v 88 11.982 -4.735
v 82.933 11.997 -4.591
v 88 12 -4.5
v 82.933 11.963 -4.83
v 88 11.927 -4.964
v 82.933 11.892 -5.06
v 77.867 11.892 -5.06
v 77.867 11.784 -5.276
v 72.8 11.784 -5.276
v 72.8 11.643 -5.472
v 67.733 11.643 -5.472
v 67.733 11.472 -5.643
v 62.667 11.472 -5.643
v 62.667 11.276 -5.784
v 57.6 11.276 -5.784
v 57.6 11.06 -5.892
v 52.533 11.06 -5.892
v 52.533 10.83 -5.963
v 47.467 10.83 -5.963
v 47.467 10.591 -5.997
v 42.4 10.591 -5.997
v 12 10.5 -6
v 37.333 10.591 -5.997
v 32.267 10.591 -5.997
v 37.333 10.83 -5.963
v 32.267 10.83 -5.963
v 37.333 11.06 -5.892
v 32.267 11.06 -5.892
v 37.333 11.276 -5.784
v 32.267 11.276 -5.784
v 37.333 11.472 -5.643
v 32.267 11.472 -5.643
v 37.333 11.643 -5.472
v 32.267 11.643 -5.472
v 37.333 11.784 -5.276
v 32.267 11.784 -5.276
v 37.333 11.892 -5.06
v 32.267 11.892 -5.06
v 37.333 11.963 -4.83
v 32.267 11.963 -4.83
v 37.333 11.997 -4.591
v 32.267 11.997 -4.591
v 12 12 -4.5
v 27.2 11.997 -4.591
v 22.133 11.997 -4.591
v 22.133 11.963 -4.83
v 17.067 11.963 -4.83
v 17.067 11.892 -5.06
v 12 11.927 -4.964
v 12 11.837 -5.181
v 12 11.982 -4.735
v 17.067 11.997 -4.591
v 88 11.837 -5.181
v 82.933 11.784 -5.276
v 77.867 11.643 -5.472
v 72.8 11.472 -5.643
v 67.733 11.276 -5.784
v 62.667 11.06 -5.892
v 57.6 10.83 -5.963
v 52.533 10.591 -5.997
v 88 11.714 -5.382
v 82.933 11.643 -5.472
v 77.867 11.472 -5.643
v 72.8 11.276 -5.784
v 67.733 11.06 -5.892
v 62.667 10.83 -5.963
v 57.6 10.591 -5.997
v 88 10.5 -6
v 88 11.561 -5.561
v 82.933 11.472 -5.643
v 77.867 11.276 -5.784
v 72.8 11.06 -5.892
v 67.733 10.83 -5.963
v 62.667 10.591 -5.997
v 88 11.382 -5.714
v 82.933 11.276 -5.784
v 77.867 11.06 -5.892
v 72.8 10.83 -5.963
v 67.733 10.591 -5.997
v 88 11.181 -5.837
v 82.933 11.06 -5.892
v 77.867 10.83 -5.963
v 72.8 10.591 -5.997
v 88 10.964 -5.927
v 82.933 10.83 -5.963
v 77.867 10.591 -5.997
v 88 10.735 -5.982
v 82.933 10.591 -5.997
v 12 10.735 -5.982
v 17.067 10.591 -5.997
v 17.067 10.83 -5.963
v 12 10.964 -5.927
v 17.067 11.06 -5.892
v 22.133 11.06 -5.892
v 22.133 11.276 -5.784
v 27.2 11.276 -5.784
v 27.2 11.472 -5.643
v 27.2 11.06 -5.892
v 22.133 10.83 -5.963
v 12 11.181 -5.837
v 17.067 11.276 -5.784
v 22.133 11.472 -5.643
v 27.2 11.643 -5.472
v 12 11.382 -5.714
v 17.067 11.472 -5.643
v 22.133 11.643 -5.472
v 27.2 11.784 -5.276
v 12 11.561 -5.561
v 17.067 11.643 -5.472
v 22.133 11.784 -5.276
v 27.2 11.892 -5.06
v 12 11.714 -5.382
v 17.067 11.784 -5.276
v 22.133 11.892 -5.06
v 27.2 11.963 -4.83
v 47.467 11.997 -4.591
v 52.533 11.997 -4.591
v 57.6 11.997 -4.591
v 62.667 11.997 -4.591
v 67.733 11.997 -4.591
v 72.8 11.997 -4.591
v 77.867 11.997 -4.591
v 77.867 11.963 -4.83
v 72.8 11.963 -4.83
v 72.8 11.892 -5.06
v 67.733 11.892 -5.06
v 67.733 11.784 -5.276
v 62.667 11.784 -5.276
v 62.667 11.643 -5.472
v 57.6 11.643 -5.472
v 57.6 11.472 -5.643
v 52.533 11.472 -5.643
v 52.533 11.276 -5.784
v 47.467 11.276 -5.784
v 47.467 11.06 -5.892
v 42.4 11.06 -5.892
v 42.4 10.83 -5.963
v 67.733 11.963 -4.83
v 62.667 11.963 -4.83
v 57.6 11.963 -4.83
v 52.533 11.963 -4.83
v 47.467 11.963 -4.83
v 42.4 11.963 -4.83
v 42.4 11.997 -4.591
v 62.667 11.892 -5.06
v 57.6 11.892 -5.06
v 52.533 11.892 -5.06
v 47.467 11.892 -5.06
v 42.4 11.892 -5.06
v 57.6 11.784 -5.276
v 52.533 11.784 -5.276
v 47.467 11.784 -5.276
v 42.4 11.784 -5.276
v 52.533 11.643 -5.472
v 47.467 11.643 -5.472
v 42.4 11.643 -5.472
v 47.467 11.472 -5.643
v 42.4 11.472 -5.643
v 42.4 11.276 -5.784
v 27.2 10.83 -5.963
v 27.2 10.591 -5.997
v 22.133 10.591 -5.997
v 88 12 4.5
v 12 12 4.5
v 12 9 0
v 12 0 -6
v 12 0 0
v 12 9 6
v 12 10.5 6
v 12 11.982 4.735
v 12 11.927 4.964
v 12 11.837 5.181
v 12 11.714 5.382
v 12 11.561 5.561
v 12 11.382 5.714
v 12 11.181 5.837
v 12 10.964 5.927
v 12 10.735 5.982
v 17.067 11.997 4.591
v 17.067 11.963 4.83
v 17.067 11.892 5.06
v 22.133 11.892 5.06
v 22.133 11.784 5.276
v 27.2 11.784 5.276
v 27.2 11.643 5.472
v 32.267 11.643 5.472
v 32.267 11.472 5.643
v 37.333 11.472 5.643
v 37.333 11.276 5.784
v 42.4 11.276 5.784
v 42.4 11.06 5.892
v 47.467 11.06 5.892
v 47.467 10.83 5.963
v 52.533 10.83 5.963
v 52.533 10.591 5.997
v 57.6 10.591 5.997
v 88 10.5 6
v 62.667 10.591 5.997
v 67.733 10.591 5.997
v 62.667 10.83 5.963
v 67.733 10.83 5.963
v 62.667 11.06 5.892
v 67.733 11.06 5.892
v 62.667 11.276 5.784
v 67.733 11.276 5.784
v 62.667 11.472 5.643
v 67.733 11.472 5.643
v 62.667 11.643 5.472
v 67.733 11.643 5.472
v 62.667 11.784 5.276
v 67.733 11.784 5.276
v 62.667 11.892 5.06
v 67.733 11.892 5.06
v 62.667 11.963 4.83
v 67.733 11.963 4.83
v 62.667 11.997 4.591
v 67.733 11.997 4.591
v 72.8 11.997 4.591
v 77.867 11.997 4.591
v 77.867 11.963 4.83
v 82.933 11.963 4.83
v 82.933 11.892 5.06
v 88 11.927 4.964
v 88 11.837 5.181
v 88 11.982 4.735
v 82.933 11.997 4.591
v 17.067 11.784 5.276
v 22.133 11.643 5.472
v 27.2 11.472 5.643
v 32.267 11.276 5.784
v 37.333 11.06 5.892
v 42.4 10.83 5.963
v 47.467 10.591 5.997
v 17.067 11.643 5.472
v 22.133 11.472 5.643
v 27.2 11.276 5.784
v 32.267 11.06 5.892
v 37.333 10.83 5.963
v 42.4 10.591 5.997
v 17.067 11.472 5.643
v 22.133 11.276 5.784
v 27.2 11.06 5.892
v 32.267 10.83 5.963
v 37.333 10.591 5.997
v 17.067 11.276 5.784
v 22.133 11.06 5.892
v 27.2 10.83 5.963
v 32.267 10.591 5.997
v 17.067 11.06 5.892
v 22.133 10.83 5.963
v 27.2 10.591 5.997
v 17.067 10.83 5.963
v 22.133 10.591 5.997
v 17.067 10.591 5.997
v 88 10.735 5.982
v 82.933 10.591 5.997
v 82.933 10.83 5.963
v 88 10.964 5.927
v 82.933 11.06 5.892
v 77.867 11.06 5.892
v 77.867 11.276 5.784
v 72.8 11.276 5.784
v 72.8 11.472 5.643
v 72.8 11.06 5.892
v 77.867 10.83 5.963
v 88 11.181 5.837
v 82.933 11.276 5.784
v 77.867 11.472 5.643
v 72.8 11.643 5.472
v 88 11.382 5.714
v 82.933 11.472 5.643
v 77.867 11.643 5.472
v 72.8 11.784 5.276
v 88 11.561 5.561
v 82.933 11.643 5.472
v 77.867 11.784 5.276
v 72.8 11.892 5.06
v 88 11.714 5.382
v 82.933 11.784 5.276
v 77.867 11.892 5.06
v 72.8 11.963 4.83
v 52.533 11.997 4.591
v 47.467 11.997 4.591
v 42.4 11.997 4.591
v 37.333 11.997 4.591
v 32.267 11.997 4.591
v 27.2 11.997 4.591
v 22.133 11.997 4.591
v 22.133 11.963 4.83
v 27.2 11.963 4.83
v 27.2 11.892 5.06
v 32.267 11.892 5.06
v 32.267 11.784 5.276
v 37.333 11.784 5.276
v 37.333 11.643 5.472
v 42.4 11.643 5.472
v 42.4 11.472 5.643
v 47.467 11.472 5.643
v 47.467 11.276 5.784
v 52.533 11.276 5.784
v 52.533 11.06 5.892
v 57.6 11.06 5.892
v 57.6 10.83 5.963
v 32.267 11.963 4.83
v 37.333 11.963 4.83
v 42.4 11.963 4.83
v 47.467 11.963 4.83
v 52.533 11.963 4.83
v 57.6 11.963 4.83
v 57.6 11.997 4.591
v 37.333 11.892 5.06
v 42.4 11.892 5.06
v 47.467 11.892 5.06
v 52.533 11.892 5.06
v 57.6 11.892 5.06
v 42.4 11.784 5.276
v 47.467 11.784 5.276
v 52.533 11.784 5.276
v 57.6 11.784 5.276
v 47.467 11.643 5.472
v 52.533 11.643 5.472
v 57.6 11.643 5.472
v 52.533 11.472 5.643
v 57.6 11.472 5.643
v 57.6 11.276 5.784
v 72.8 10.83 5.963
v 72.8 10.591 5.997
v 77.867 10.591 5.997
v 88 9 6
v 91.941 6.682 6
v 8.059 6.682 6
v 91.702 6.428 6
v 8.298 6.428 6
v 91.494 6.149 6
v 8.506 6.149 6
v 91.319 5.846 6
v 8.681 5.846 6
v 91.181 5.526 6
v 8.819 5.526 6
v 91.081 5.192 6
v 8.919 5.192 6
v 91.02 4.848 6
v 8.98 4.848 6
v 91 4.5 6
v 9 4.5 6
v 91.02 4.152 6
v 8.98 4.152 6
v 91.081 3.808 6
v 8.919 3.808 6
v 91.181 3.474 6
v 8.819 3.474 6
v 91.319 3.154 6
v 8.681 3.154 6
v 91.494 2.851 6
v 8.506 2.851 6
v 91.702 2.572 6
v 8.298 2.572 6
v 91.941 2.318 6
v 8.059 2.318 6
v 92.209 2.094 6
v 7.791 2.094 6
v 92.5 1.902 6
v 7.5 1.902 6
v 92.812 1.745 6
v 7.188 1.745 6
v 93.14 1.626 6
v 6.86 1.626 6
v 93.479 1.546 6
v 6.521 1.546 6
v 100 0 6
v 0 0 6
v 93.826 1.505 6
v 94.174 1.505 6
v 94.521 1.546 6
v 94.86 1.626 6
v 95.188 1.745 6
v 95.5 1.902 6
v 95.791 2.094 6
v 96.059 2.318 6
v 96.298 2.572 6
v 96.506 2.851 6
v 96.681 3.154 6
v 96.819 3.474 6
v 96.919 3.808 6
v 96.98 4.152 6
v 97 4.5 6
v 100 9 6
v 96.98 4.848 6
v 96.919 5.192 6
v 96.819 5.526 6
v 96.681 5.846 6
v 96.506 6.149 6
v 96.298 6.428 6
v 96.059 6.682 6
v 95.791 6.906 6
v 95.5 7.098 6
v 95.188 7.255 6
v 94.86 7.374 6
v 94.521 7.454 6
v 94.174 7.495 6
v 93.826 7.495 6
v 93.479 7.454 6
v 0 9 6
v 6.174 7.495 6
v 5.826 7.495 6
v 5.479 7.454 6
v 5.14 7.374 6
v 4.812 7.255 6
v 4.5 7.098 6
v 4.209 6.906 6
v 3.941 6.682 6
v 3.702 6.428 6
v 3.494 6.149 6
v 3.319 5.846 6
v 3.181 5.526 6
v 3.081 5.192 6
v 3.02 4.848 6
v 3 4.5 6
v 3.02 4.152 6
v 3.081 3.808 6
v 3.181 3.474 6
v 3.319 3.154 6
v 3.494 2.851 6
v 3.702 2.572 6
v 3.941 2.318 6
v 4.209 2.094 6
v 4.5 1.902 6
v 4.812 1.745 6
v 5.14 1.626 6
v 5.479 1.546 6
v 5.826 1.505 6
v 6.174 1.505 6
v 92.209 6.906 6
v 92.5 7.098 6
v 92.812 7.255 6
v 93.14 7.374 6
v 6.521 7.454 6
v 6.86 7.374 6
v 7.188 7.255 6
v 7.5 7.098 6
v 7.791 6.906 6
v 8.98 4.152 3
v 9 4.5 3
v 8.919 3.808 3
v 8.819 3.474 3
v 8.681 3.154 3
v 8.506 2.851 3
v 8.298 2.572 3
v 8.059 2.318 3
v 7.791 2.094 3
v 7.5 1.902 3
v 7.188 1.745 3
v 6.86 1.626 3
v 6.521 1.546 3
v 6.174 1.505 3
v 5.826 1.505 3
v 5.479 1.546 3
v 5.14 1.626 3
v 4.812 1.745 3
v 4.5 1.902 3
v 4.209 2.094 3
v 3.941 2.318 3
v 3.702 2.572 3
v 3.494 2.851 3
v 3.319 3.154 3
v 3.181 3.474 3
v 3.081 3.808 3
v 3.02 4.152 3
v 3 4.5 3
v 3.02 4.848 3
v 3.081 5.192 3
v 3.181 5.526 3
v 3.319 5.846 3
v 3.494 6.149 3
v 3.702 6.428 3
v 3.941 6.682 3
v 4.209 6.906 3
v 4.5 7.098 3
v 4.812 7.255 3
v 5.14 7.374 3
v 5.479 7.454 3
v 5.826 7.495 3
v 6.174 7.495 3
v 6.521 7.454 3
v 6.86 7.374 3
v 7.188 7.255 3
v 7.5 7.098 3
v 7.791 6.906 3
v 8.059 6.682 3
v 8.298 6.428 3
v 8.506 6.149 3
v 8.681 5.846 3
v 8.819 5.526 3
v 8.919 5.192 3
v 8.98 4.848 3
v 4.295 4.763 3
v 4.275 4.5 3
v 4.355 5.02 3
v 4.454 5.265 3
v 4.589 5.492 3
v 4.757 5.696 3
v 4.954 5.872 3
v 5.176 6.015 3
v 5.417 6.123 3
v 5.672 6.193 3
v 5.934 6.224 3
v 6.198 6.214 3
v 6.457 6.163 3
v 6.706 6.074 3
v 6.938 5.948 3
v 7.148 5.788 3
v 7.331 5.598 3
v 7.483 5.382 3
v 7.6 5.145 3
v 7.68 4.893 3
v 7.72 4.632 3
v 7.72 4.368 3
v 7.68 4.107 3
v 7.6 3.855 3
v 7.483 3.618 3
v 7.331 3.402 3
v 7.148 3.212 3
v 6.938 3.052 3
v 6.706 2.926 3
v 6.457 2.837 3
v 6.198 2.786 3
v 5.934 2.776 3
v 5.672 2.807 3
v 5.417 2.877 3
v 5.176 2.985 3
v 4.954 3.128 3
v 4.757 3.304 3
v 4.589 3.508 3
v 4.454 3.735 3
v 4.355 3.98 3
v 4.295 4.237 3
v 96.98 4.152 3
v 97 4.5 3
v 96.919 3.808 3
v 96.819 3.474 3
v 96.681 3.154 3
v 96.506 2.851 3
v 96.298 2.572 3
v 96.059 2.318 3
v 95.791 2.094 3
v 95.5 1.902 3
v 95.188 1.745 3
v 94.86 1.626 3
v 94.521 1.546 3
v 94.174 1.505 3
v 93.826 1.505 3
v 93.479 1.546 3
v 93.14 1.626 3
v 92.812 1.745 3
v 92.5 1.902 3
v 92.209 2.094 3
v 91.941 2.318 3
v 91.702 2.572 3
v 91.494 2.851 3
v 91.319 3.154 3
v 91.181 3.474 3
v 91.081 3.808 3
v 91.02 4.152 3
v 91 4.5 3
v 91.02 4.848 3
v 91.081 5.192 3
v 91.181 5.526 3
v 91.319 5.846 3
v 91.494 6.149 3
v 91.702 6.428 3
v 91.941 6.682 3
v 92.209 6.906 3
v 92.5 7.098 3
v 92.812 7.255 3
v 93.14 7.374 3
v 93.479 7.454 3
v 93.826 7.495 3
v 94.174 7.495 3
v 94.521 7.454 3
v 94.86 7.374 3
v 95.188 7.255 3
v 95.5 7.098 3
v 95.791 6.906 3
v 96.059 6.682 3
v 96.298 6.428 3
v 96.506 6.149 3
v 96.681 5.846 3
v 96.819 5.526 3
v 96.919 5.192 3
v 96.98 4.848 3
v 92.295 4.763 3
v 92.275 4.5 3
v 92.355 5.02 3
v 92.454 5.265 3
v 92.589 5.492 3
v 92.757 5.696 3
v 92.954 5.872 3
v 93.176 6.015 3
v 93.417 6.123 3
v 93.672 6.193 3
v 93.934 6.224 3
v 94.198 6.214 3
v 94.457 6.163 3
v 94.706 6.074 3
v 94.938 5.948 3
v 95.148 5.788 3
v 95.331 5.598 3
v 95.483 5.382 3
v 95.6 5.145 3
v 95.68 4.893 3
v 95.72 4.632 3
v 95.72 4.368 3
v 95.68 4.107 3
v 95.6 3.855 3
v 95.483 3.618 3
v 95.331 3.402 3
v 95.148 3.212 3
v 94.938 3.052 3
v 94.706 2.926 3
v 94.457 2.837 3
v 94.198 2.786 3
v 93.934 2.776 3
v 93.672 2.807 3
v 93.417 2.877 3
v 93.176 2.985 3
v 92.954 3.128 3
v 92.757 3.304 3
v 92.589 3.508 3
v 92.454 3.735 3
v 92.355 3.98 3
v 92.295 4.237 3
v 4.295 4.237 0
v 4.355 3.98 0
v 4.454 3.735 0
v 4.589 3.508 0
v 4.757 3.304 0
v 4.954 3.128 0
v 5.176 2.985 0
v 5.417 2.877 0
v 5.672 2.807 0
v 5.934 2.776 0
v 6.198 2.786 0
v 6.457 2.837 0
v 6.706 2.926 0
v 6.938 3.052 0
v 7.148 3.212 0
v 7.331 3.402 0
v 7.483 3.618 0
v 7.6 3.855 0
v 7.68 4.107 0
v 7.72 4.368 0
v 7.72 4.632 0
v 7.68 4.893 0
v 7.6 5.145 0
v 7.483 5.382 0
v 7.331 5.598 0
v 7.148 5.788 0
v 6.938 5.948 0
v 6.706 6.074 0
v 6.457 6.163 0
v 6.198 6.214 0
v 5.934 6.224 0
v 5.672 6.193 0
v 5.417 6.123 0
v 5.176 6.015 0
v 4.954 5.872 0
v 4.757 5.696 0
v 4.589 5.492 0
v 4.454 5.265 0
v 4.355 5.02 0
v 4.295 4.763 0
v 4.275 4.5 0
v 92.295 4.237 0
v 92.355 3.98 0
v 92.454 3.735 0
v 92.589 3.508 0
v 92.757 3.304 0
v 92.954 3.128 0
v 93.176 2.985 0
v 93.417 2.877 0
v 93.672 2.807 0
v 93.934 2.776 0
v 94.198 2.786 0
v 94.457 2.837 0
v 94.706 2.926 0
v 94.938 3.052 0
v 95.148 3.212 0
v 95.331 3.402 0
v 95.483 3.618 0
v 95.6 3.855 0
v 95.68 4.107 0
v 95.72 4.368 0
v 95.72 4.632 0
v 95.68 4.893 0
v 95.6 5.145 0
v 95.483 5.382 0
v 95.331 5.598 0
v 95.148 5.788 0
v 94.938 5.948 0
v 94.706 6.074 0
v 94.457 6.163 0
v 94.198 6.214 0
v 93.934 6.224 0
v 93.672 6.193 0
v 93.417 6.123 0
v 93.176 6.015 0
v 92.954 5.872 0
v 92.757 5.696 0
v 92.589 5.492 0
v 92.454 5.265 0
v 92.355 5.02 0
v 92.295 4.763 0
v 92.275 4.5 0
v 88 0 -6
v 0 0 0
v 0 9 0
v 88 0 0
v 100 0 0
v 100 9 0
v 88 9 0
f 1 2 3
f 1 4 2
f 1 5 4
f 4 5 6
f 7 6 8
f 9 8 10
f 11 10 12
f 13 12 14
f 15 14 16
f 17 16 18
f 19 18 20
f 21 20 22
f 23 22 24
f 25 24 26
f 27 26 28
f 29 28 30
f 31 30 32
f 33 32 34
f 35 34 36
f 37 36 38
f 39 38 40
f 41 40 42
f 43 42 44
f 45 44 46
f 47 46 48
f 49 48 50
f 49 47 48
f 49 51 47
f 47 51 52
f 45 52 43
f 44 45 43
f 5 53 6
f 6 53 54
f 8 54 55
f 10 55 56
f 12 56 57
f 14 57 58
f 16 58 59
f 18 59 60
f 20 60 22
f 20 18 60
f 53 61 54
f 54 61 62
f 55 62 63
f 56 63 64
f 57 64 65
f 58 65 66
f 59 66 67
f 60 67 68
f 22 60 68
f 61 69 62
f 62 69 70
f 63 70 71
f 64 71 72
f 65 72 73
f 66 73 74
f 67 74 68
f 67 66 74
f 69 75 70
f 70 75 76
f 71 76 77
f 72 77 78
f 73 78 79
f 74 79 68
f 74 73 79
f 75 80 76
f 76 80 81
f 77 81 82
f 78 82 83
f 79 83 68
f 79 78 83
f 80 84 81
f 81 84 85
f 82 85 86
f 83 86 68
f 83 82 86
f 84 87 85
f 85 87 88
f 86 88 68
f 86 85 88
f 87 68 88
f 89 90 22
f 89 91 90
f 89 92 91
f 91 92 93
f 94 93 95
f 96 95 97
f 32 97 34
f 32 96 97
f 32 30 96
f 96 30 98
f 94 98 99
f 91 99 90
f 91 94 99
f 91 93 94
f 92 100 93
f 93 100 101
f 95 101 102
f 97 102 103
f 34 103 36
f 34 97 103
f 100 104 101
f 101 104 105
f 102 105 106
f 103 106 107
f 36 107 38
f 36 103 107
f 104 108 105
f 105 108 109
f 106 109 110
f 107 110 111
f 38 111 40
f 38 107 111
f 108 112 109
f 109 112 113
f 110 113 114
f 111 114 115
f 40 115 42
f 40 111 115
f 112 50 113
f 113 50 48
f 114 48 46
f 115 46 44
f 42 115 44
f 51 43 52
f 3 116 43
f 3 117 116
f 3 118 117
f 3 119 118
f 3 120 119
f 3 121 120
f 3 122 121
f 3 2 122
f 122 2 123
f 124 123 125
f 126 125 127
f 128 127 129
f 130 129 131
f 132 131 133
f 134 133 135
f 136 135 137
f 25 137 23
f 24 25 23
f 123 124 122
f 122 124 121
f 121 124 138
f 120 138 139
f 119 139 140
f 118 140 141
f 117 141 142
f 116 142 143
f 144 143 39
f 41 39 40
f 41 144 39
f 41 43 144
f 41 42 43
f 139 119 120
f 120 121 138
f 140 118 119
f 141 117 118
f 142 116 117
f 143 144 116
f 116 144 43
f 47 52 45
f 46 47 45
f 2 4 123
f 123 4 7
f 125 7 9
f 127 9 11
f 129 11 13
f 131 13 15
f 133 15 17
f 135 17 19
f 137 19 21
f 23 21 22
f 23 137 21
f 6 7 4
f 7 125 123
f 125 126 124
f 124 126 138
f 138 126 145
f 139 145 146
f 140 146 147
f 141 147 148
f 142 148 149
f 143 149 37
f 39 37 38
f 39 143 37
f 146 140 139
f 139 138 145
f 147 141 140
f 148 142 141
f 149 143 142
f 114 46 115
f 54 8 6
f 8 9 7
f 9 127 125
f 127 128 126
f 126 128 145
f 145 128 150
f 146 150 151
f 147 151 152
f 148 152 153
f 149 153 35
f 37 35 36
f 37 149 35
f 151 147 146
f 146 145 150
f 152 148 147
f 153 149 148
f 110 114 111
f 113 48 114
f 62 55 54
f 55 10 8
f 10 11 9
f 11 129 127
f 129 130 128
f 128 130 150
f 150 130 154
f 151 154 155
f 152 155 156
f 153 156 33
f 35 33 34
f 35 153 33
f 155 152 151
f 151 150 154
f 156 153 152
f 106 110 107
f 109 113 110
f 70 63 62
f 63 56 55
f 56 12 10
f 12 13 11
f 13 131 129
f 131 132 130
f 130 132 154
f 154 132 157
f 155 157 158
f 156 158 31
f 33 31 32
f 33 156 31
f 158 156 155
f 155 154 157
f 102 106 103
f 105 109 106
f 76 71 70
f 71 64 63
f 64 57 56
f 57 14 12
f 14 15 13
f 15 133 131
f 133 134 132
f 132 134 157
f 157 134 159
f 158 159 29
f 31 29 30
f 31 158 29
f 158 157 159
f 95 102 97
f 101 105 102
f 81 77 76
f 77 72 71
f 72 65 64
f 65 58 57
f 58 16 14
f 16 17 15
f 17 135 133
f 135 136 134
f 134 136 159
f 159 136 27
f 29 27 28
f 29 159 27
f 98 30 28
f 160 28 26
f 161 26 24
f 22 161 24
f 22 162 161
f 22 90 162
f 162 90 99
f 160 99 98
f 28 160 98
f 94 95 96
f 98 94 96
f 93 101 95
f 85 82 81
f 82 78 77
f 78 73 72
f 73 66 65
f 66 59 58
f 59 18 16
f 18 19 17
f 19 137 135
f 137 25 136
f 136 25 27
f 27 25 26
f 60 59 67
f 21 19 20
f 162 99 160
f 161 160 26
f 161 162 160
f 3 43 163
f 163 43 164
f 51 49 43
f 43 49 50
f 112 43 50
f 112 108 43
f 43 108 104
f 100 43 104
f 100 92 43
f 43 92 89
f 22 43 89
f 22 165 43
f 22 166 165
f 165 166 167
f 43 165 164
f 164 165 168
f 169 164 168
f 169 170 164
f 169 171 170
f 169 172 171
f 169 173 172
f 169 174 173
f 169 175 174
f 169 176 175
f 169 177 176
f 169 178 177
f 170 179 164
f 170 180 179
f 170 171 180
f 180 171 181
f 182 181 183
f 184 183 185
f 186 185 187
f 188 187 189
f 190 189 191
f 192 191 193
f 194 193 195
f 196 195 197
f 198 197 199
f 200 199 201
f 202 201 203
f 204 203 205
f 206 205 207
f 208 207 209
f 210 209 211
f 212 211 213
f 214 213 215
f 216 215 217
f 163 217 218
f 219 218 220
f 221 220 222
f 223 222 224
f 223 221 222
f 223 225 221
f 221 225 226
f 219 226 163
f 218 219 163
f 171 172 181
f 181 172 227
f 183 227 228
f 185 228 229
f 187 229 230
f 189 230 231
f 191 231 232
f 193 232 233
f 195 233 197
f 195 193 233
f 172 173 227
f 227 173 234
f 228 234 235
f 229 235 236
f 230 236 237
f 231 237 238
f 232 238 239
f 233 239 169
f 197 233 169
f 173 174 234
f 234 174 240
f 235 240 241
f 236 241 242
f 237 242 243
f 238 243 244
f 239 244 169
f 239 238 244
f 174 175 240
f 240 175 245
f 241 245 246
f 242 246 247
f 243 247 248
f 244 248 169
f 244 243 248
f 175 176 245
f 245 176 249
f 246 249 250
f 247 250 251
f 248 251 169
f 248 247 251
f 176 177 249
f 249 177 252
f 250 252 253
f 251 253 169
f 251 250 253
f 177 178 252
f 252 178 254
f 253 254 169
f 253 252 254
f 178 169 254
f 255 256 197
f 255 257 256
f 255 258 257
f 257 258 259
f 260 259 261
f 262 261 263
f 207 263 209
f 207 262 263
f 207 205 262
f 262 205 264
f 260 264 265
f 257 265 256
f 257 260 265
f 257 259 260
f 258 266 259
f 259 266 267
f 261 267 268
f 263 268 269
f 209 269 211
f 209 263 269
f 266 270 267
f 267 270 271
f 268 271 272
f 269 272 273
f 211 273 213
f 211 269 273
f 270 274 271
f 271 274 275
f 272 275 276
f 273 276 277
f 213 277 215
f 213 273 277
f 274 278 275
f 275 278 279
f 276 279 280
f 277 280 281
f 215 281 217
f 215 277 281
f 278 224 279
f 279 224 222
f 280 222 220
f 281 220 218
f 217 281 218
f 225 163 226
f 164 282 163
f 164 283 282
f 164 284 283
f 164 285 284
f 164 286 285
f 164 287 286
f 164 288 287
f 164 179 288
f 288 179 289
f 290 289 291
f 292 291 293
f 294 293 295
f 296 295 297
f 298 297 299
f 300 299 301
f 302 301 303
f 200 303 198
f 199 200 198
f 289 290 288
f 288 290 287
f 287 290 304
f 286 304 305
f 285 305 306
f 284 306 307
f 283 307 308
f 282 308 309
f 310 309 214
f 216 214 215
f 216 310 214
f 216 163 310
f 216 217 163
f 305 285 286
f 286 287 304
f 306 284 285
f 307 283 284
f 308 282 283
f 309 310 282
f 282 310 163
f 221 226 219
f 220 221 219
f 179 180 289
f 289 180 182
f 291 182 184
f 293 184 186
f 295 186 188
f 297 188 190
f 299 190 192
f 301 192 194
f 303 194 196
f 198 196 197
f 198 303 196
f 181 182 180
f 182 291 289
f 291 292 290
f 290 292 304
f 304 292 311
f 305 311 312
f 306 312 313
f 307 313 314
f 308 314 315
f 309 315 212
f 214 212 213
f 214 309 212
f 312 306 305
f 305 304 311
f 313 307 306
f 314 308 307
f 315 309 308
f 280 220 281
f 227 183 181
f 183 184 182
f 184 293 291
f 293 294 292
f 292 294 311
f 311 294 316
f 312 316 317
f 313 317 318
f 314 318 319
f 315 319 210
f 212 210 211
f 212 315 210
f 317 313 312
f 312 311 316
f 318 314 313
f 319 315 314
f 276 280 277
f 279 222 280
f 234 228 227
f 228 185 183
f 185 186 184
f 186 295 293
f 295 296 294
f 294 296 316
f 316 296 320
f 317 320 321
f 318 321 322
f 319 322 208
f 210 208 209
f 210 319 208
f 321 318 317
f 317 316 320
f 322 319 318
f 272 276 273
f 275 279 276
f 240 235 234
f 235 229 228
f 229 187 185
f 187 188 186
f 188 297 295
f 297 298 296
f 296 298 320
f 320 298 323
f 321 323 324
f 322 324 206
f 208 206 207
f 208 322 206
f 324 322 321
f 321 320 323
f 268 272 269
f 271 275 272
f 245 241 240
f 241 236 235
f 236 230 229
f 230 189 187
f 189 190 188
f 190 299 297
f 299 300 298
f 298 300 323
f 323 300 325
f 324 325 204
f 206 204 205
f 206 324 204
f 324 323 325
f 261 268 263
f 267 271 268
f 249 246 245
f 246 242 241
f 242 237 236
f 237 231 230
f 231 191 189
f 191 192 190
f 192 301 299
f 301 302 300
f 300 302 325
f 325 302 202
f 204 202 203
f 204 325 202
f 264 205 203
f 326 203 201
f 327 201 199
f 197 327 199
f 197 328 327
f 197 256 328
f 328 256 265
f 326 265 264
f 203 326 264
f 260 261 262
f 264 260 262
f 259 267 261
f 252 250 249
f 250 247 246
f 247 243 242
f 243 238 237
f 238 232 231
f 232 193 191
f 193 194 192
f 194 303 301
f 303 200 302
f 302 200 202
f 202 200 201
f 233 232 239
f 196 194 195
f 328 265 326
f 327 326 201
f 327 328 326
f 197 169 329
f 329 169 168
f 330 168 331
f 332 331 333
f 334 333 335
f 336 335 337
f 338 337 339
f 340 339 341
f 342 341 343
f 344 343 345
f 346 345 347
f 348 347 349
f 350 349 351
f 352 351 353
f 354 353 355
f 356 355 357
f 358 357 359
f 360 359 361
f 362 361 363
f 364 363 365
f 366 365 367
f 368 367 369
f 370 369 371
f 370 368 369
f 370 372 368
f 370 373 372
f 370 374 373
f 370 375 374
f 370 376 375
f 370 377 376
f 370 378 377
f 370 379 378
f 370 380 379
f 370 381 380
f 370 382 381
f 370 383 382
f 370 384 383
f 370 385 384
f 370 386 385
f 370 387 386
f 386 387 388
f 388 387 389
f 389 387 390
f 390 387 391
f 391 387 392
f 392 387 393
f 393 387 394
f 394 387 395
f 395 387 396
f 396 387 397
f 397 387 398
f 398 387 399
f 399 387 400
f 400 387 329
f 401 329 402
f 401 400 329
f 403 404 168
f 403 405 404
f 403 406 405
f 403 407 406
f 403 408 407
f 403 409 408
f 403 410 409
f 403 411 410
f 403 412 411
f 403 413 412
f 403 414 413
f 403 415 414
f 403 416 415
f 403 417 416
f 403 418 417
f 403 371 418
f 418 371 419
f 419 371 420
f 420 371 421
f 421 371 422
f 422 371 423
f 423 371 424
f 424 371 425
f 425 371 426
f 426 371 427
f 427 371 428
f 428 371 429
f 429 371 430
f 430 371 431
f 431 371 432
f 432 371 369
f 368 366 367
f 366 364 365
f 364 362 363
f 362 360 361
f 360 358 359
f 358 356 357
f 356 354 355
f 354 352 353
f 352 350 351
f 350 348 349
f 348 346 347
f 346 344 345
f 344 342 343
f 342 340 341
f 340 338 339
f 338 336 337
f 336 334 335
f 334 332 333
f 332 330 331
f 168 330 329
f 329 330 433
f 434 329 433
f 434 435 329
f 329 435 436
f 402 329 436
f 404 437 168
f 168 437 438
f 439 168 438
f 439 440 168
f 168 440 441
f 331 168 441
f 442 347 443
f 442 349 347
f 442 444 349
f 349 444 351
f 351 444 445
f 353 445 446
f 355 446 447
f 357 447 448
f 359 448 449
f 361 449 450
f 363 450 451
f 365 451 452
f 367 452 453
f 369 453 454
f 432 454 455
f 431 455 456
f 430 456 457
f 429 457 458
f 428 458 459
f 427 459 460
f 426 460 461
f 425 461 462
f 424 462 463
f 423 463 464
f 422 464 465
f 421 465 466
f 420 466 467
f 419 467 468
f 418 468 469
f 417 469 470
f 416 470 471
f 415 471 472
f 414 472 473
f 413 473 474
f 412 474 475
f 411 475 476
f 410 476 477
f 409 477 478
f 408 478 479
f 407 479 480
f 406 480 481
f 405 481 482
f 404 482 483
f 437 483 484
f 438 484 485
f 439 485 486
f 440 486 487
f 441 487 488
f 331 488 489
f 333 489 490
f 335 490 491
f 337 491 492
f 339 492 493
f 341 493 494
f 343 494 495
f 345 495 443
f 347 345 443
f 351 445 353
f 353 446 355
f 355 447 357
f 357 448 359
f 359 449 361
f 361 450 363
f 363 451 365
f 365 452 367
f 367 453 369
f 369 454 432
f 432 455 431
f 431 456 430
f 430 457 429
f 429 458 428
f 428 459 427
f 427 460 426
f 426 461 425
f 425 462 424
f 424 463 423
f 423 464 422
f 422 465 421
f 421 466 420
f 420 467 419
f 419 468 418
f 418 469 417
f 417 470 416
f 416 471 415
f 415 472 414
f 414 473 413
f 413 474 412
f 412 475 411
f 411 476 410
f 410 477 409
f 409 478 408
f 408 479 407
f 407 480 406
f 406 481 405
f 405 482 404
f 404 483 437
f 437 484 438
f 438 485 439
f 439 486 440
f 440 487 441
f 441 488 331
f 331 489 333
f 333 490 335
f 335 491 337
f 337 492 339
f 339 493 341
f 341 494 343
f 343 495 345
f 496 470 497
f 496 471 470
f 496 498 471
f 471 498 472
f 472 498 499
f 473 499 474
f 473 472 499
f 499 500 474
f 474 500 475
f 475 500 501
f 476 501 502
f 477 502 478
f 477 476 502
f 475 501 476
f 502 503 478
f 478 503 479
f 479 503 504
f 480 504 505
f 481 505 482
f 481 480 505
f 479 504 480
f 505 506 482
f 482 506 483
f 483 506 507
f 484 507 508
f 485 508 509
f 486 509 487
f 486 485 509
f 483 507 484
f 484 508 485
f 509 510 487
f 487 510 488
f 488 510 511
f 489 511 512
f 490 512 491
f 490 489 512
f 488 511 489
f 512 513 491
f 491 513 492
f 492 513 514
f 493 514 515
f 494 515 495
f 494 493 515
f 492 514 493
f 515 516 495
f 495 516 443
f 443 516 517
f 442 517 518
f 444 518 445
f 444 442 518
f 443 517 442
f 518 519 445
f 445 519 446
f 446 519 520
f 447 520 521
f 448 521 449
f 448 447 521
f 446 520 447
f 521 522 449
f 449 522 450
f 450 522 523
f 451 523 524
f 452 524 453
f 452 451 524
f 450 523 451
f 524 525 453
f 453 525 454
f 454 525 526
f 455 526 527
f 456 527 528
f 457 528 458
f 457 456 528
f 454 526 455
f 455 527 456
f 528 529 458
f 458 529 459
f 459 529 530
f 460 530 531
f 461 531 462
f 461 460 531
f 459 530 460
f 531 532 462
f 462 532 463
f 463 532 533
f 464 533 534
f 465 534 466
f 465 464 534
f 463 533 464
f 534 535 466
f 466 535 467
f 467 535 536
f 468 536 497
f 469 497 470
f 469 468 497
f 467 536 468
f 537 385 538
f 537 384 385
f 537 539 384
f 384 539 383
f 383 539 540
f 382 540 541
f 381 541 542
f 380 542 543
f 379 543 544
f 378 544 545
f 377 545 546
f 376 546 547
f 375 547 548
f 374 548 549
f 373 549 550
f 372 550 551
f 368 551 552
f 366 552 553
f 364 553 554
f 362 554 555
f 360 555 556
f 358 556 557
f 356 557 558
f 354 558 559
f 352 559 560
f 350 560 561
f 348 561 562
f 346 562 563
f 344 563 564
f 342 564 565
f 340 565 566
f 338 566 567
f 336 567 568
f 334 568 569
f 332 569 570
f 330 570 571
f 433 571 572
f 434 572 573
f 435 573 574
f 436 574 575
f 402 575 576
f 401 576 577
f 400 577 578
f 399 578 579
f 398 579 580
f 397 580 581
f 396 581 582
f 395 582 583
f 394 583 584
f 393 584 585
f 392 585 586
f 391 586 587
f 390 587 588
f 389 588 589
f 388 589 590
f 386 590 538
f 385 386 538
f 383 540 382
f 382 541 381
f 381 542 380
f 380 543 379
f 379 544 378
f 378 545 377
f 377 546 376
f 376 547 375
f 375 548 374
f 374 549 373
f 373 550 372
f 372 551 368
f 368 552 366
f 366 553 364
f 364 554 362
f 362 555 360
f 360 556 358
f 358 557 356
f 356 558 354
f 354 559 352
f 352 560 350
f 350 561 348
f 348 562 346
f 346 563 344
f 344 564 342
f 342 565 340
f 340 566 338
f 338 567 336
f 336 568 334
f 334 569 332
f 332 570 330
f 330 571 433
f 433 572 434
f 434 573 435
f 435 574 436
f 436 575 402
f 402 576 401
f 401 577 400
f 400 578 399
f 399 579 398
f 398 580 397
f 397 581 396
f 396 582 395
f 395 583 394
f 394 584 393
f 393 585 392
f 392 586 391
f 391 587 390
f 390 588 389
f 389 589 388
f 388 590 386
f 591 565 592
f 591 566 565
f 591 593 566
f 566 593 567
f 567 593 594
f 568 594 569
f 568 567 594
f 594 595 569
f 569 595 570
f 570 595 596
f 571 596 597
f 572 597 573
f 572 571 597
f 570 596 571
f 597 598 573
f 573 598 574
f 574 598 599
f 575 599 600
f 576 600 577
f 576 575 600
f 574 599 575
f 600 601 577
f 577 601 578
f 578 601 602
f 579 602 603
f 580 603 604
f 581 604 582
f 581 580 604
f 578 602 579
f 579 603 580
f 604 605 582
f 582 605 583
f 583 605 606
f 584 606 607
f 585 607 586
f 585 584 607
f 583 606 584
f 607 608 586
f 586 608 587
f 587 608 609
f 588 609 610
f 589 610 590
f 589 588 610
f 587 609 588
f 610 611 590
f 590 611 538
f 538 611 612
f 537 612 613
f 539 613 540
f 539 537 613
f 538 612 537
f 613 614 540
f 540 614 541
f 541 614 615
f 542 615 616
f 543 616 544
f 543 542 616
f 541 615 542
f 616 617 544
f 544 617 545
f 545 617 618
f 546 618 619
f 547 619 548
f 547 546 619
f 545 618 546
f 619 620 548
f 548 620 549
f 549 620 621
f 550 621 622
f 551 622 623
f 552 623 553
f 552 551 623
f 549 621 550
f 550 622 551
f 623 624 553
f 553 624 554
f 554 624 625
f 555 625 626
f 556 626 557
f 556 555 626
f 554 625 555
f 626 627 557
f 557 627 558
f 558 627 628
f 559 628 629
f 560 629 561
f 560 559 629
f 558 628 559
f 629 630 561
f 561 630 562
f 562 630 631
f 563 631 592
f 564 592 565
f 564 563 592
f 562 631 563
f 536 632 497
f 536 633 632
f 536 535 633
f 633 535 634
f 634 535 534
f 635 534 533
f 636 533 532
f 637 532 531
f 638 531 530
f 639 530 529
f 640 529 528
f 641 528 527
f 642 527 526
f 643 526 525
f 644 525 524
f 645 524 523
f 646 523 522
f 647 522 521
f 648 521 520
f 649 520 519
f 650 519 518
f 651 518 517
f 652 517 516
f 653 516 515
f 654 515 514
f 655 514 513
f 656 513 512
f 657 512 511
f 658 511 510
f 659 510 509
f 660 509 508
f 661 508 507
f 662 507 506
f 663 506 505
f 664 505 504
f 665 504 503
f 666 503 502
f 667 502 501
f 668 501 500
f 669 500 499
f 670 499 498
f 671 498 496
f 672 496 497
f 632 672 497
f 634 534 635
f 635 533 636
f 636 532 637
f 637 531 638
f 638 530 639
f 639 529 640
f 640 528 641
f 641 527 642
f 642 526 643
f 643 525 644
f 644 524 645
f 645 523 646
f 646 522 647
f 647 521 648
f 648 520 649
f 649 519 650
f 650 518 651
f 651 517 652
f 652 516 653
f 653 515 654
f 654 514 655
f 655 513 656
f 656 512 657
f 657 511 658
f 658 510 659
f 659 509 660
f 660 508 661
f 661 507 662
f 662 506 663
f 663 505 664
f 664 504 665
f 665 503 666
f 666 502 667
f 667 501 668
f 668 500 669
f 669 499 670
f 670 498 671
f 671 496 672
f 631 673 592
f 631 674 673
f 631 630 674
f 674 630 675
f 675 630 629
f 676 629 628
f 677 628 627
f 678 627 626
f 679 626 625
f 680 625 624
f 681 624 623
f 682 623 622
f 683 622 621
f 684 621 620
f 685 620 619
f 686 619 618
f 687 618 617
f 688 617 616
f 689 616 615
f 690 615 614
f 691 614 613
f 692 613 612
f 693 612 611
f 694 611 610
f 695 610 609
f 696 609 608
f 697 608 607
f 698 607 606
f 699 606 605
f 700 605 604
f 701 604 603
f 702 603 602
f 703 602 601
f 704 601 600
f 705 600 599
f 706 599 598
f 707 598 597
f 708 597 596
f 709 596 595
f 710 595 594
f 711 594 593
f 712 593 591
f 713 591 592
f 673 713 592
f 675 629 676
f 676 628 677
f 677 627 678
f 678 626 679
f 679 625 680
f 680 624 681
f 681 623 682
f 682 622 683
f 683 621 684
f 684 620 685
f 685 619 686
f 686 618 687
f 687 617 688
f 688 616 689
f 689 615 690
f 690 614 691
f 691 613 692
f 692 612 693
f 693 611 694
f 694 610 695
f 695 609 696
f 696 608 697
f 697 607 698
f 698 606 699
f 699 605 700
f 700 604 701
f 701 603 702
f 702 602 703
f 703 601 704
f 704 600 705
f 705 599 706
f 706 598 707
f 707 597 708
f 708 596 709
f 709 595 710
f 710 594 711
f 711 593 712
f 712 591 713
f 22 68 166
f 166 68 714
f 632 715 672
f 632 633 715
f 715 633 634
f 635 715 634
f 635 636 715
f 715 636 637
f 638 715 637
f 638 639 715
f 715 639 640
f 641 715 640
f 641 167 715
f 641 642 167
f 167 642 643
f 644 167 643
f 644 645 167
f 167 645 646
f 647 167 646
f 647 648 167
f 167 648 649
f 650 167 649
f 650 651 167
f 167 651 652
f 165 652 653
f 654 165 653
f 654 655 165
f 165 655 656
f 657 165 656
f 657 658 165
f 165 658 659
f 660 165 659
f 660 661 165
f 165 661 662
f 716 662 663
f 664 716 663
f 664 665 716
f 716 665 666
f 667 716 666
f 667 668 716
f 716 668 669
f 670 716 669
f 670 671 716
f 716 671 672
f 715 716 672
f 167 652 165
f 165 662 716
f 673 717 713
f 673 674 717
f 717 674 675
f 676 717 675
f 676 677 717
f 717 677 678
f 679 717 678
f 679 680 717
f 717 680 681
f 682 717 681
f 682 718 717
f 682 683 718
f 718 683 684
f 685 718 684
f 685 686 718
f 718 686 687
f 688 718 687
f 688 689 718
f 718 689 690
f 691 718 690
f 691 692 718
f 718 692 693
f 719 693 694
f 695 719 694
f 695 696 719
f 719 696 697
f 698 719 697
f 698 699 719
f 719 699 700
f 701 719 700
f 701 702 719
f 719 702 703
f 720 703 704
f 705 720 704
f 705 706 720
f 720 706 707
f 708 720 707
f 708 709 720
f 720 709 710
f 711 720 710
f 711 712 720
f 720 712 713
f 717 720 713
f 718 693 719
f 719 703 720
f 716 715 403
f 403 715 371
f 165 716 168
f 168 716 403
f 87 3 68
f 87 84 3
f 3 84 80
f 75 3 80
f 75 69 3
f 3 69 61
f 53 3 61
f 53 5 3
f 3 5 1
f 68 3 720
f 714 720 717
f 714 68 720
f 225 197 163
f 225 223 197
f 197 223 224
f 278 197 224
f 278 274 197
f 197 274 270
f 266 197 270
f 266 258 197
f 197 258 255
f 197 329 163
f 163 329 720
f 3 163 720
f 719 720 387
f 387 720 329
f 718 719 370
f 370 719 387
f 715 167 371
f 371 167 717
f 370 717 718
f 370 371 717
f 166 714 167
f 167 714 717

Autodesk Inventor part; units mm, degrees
ref_plane "YZ Plane" through (0, 0, 0) normal (1, 0, 0) x (0, 1, 0)
ref_plane "XZ Plane" through (0, 0, 0) normal (0, 1, 0) x (-1, 0, 0)
ref_plane "XY Plane" through (0, 0, 0) normal (0, 0, 1) x (1, 0, 0)
sketch "Sketch1" plane through (0, 0, 0) normal (0, 0, 1) x (1, 0, 0)
  line L0 (0, 0) -> (100, 0)
  line L1 (100, 0) -> (100, 9)
  line L2 (88, 12) -> (12, 12)
  line L3 (0, 9) -> (0, 0)
  line L4 (12, 12) -> (12, 9)
  line L5 (12, 9) -> (0, 9)
  line L6 (88, 12) -> (88, 9)
  line L7 (88, 9) -> (100, 9)
  dimension "d6" = 100
  dimension "d7" = 3
  dimension "d8" = 3
  dimension "d9" = 12
  dimension "d10" = 12
  dimension "d11" = 9
  dimension "d12" = 9
  dimension "d13" = 12
extrude "Extrusion1" add sketch "Sketch1" along normal blind 6
sketch "Sketch2" plane through (0, 0, 0) normal (0, 0, -1) x (-1, 0, 0)
  line L0 (-88, 12) -> (-12, 12) projected
  line L1 (0, 0) -> (-100, 0) projected
  line L2 (-88, 12) -> (-12, 12)
  line L3 (-12, 12) -> (-12, 0)
  line L4 (-12, 0) -> (-88, 0)
  line L5 (-88, 0) -> (-88, 12)
extrude "Extrusion2" add sketch "Sketch2" along normal blind 6
sketch "Sketch3" plane through (0, 0, 0) normal (0, 0, -1) x (-1, 0, 0)
  circle A0 centre (-6, 4.5) radius 1.725
  line L0 (-12, 9) -> (0, 9) projected
  line L1 (0, 9) -> (0, 0) projected
  circle A1 centre (-94, 4.5) radius 1.725
  line L2 (-88, 0) -> (-100, 0) projected
  line L3 (-100, 0) -> (-100, 9) projected
  dimension "d18" = 3.45
  dimension "d19" = 4.5
  dimension "d20" = 6
  dimension "d21" = 3.45
  dimension "d22" = 4.5
  dimension "d23" = 6
extrude "Extrusion3" cut sketch "Sketch3" against normal blind 3
sketch "Sketch4" plane through (0, 0, 6) normal (0, 0, 1) x (1, 0, 0)
  circle A0 centre (6, 4.5) radius 3
  line L0 (12, 9) -> (0, 9) projected
  line L1 (0, 9) -> (0, 0) projected
  circle A1 centre (94, 4.5) radius 1.725 projected
  circle A2 centre (94, 4.5) radius 3
  dimension "d26" = 6
  dimension "d27" = 4.5
  dimension "d28" = 6
  dimension "d29" = 6
extrude "Extrusion4" cut sketch "Sketch4" against normal blind 3 contours A0 | A1 | A2
fillet "Fillet1" radius 1.5 2 edges at (50, 12, 6) (50, 12, -6)
equation "\"d8\" = d7"
equation "\"d10\" = d9"
equation "\"d12\" = d11"
properties part number "beam10cm"
